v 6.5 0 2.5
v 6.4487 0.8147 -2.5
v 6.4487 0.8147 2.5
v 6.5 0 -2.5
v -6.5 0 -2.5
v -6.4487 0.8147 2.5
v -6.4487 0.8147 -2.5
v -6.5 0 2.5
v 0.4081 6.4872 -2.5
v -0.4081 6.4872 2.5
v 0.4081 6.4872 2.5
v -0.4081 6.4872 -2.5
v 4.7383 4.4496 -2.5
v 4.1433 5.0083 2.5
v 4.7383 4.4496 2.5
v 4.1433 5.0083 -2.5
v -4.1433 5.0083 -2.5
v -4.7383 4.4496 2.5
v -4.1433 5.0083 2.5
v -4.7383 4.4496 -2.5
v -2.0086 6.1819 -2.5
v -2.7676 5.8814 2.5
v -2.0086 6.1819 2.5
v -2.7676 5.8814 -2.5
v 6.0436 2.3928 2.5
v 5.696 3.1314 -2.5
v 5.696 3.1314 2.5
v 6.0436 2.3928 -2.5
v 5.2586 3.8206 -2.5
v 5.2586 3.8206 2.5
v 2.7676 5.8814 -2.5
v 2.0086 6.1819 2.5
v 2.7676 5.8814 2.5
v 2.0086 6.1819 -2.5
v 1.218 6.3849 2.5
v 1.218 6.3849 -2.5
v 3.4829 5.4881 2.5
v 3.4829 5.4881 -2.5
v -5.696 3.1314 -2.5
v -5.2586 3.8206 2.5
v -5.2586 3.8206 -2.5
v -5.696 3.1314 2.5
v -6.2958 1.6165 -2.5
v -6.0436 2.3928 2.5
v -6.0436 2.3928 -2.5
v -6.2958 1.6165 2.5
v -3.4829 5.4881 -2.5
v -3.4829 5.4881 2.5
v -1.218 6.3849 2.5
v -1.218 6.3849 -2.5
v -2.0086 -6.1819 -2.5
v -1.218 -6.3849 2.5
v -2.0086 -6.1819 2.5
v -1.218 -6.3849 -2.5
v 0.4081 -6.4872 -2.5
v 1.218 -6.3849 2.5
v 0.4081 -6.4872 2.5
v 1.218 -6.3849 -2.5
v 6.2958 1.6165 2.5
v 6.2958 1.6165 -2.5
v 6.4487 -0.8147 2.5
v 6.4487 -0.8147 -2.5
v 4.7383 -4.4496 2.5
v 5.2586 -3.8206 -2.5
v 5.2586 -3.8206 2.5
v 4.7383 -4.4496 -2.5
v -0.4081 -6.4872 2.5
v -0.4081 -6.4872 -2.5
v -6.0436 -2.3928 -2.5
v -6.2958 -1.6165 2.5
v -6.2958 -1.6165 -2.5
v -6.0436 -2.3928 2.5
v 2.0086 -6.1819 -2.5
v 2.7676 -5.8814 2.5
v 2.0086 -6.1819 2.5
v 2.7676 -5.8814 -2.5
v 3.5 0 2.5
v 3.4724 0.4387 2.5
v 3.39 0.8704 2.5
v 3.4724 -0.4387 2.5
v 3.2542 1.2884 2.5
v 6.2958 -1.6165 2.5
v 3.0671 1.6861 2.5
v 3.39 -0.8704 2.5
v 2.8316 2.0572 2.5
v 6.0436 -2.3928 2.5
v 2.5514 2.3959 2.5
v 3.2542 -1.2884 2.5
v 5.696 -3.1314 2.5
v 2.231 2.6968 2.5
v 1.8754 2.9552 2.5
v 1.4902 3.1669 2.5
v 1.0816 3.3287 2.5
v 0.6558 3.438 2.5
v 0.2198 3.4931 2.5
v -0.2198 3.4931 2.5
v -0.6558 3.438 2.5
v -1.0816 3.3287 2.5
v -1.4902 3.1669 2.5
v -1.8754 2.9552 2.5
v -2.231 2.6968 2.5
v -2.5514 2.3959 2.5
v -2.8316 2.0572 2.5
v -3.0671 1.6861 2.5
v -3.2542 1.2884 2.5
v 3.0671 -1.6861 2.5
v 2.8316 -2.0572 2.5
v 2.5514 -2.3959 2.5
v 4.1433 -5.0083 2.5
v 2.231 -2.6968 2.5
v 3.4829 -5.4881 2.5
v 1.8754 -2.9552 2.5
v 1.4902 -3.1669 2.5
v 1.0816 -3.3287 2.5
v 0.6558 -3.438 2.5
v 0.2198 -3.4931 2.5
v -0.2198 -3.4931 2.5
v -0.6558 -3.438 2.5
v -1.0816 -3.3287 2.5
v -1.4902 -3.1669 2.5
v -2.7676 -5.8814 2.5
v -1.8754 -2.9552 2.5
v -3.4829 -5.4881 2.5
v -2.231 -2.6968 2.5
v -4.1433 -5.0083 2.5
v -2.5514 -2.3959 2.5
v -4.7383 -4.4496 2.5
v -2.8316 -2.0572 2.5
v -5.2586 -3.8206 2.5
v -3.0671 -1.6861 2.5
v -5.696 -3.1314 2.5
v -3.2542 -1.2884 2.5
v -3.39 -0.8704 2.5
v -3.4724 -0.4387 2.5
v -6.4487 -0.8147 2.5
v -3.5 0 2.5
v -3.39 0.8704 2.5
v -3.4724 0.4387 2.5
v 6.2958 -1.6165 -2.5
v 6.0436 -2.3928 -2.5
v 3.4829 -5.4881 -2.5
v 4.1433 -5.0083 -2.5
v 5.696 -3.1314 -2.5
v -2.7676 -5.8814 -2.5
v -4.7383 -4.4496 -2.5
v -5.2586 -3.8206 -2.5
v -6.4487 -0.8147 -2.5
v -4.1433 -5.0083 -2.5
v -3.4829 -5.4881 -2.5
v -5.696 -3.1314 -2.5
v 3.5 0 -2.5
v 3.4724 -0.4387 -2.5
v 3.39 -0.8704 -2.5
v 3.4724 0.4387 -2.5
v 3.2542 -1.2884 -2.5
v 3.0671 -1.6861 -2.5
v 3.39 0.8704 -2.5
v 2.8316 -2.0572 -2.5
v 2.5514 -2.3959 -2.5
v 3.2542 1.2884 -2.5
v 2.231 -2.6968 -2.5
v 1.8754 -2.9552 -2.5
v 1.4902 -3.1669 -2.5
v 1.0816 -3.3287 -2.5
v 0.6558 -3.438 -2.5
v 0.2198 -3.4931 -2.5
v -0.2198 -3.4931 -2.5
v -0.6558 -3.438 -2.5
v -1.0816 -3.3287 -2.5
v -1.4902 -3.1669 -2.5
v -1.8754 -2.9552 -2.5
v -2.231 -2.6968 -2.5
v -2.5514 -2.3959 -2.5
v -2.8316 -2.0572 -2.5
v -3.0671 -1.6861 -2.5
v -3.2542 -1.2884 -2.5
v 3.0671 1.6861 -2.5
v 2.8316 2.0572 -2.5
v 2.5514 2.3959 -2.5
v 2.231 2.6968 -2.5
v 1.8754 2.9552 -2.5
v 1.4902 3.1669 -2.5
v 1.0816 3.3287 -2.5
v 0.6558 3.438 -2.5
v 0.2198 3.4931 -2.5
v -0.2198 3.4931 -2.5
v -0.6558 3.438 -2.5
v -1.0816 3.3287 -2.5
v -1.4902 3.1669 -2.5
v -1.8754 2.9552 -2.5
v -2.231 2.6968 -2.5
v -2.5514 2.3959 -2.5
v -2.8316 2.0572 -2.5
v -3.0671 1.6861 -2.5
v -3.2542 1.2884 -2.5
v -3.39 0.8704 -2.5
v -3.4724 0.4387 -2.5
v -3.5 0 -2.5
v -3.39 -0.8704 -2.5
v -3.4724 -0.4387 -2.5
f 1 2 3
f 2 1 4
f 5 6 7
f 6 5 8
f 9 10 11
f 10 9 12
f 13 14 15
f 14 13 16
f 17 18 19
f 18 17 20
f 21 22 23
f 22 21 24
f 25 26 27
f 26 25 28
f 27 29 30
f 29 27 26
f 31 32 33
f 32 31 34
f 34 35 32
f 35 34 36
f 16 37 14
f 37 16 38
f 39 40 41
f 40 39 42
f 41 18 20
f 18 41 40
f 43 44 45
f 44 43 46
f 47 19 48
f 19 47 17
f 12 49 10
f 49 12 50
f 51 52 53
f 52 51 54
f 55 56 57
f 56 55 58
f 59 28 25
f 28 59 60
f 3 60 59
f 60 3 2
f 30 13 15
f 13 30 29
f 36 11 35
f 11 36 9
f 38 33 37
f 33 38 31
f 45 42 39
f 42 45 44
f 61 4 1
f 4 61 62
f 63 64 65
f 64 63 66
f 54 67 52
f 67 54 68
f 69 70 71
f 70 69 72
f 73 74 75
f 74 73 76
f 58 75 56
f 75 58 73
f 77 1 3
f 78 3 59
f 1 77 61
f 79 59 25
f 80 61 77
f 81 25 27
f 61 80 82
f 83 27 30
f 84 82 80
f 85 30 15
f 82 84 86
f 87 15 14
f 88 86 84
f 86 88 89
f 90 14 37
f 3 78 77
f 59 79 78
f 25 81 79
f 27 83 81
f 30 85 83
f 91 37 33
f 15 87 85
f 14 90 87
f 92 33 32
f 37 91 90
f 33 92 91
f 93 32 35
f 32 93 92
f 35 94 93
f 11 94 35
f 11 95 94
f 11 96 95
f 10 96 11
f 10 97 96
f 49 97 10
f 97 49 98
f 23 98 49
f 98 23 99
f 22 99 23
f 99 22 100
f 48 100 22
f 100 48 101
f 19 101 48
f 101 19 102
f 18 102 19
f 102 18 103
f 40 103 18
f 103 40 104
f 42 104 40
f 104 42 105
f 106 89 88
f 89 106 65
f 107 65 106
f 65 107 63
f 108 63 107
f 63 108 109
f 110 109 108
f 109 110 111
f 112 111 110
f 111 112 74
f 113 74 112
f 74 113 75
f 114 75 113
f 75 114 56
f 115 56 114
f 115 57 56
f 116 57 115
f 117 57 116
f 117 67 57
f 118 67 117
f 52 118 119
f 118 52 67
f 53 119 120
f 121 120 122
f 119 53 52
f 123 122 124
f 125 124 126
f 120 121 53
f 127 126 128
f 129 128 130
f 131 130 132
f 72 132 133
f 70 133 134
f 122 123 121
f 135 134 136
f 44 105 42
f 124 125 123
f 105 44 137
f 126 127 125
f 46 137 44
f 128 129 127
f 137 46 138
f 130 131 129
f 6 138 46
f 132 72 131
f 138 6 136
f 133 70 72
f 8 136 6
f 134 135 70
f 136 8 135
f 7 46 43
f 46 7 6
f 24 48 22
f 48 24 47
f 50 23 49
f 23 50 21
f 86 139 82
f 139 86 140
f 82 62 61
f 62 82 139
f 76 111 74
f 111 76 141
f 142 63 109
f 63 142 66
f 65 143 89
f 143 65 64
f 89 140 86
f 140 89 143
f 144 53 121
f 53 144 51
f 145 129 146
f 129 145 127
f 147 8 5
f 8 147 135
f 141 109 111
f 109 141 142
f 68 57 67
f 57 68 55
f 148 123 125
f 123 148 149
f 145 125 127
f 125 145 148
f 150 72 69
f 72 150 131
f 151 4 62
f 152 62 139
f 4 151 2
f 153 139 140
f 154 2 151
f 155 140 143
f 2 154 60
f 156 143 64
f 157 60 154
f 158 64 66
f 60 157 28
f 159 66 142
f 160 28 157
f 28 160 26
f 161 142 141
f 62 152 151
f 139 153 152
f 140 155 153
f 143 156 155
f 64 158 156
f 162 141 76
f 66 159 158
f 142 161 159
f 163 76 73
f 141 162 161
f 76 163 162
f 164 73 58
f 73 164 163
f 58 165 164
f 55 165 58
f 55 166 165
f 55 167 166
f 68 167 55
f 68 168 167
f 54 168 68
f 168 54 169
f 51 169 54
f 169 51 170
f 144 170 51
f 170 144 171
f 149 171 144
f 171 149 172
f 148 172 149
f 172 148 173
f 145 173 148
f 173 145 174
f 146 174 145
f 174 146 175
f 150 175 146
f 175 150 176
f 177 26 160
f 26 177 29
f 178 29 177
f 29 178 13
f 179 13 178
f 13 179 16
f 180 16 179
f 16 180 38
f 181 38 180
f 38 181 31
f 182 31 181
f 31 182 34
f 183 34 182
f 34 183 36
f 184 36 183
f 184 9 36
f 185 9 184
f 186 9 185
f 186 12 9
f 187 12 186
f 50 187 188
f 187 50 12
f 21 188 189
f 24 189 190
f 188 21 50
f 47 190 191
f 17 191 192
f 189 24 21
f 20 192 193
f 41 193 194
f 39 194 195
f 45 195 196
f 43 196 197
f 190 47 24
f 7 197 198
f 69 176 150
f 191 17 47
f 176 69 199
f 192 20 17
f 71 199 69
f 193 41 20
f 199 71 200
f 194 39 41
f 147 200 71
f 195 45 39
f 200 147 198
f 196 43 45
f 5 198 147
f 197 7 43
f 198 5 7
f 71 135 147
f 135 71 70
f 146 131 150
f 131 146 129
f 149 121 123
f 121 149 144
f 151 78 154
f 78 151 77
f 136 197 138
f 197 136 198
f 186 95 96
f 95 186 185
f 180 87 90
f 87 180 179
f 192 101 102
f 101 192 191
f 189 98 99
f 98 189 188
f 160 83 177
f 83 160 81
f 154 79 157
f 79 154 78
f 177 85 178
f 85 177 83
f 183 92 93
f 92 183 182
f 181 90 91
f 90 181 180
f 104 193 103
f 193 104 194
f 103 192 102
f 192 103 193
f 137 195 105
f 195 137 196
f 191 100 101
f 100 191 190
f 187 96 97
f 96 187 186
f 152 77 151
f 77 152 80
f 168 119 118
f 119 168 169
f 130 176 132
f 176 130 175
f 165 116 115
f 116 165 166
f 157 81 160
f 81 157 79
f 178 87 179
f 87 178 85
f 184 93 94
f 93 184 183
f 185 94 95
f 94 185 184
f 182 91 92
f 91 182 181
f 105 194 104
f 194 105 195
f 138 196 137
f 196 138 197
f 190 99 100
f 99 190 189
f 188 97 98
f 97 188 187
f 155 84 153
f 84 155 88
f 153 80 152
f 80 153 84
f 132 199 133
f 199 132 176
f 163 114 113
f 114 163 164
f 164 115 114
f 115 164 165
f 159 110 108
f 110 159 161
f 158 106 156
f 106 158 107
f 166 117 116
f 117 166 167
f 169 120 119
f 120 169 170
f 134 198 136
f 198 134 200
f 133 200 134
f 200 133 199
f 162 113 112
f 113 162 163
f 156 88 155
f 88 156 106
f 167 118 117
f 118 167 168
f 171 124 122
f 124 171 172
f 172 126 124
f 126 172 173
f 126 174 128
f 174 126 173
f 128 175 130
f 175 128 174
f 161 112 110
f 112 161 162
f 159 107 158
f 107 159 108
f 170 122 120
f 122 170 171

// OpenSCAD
$fn = 50;


difference() {
	union() {
		translate(v = [0, 0, -2.5000000000]) {
			cylinder(h = 5, r = 6.5000000000);
		}
	}
	union() {
		translate(v = [0, 0, -100.0000000000]) {
			cylinder(h = 200, r = 3.5000000000);
		}
	}
}
